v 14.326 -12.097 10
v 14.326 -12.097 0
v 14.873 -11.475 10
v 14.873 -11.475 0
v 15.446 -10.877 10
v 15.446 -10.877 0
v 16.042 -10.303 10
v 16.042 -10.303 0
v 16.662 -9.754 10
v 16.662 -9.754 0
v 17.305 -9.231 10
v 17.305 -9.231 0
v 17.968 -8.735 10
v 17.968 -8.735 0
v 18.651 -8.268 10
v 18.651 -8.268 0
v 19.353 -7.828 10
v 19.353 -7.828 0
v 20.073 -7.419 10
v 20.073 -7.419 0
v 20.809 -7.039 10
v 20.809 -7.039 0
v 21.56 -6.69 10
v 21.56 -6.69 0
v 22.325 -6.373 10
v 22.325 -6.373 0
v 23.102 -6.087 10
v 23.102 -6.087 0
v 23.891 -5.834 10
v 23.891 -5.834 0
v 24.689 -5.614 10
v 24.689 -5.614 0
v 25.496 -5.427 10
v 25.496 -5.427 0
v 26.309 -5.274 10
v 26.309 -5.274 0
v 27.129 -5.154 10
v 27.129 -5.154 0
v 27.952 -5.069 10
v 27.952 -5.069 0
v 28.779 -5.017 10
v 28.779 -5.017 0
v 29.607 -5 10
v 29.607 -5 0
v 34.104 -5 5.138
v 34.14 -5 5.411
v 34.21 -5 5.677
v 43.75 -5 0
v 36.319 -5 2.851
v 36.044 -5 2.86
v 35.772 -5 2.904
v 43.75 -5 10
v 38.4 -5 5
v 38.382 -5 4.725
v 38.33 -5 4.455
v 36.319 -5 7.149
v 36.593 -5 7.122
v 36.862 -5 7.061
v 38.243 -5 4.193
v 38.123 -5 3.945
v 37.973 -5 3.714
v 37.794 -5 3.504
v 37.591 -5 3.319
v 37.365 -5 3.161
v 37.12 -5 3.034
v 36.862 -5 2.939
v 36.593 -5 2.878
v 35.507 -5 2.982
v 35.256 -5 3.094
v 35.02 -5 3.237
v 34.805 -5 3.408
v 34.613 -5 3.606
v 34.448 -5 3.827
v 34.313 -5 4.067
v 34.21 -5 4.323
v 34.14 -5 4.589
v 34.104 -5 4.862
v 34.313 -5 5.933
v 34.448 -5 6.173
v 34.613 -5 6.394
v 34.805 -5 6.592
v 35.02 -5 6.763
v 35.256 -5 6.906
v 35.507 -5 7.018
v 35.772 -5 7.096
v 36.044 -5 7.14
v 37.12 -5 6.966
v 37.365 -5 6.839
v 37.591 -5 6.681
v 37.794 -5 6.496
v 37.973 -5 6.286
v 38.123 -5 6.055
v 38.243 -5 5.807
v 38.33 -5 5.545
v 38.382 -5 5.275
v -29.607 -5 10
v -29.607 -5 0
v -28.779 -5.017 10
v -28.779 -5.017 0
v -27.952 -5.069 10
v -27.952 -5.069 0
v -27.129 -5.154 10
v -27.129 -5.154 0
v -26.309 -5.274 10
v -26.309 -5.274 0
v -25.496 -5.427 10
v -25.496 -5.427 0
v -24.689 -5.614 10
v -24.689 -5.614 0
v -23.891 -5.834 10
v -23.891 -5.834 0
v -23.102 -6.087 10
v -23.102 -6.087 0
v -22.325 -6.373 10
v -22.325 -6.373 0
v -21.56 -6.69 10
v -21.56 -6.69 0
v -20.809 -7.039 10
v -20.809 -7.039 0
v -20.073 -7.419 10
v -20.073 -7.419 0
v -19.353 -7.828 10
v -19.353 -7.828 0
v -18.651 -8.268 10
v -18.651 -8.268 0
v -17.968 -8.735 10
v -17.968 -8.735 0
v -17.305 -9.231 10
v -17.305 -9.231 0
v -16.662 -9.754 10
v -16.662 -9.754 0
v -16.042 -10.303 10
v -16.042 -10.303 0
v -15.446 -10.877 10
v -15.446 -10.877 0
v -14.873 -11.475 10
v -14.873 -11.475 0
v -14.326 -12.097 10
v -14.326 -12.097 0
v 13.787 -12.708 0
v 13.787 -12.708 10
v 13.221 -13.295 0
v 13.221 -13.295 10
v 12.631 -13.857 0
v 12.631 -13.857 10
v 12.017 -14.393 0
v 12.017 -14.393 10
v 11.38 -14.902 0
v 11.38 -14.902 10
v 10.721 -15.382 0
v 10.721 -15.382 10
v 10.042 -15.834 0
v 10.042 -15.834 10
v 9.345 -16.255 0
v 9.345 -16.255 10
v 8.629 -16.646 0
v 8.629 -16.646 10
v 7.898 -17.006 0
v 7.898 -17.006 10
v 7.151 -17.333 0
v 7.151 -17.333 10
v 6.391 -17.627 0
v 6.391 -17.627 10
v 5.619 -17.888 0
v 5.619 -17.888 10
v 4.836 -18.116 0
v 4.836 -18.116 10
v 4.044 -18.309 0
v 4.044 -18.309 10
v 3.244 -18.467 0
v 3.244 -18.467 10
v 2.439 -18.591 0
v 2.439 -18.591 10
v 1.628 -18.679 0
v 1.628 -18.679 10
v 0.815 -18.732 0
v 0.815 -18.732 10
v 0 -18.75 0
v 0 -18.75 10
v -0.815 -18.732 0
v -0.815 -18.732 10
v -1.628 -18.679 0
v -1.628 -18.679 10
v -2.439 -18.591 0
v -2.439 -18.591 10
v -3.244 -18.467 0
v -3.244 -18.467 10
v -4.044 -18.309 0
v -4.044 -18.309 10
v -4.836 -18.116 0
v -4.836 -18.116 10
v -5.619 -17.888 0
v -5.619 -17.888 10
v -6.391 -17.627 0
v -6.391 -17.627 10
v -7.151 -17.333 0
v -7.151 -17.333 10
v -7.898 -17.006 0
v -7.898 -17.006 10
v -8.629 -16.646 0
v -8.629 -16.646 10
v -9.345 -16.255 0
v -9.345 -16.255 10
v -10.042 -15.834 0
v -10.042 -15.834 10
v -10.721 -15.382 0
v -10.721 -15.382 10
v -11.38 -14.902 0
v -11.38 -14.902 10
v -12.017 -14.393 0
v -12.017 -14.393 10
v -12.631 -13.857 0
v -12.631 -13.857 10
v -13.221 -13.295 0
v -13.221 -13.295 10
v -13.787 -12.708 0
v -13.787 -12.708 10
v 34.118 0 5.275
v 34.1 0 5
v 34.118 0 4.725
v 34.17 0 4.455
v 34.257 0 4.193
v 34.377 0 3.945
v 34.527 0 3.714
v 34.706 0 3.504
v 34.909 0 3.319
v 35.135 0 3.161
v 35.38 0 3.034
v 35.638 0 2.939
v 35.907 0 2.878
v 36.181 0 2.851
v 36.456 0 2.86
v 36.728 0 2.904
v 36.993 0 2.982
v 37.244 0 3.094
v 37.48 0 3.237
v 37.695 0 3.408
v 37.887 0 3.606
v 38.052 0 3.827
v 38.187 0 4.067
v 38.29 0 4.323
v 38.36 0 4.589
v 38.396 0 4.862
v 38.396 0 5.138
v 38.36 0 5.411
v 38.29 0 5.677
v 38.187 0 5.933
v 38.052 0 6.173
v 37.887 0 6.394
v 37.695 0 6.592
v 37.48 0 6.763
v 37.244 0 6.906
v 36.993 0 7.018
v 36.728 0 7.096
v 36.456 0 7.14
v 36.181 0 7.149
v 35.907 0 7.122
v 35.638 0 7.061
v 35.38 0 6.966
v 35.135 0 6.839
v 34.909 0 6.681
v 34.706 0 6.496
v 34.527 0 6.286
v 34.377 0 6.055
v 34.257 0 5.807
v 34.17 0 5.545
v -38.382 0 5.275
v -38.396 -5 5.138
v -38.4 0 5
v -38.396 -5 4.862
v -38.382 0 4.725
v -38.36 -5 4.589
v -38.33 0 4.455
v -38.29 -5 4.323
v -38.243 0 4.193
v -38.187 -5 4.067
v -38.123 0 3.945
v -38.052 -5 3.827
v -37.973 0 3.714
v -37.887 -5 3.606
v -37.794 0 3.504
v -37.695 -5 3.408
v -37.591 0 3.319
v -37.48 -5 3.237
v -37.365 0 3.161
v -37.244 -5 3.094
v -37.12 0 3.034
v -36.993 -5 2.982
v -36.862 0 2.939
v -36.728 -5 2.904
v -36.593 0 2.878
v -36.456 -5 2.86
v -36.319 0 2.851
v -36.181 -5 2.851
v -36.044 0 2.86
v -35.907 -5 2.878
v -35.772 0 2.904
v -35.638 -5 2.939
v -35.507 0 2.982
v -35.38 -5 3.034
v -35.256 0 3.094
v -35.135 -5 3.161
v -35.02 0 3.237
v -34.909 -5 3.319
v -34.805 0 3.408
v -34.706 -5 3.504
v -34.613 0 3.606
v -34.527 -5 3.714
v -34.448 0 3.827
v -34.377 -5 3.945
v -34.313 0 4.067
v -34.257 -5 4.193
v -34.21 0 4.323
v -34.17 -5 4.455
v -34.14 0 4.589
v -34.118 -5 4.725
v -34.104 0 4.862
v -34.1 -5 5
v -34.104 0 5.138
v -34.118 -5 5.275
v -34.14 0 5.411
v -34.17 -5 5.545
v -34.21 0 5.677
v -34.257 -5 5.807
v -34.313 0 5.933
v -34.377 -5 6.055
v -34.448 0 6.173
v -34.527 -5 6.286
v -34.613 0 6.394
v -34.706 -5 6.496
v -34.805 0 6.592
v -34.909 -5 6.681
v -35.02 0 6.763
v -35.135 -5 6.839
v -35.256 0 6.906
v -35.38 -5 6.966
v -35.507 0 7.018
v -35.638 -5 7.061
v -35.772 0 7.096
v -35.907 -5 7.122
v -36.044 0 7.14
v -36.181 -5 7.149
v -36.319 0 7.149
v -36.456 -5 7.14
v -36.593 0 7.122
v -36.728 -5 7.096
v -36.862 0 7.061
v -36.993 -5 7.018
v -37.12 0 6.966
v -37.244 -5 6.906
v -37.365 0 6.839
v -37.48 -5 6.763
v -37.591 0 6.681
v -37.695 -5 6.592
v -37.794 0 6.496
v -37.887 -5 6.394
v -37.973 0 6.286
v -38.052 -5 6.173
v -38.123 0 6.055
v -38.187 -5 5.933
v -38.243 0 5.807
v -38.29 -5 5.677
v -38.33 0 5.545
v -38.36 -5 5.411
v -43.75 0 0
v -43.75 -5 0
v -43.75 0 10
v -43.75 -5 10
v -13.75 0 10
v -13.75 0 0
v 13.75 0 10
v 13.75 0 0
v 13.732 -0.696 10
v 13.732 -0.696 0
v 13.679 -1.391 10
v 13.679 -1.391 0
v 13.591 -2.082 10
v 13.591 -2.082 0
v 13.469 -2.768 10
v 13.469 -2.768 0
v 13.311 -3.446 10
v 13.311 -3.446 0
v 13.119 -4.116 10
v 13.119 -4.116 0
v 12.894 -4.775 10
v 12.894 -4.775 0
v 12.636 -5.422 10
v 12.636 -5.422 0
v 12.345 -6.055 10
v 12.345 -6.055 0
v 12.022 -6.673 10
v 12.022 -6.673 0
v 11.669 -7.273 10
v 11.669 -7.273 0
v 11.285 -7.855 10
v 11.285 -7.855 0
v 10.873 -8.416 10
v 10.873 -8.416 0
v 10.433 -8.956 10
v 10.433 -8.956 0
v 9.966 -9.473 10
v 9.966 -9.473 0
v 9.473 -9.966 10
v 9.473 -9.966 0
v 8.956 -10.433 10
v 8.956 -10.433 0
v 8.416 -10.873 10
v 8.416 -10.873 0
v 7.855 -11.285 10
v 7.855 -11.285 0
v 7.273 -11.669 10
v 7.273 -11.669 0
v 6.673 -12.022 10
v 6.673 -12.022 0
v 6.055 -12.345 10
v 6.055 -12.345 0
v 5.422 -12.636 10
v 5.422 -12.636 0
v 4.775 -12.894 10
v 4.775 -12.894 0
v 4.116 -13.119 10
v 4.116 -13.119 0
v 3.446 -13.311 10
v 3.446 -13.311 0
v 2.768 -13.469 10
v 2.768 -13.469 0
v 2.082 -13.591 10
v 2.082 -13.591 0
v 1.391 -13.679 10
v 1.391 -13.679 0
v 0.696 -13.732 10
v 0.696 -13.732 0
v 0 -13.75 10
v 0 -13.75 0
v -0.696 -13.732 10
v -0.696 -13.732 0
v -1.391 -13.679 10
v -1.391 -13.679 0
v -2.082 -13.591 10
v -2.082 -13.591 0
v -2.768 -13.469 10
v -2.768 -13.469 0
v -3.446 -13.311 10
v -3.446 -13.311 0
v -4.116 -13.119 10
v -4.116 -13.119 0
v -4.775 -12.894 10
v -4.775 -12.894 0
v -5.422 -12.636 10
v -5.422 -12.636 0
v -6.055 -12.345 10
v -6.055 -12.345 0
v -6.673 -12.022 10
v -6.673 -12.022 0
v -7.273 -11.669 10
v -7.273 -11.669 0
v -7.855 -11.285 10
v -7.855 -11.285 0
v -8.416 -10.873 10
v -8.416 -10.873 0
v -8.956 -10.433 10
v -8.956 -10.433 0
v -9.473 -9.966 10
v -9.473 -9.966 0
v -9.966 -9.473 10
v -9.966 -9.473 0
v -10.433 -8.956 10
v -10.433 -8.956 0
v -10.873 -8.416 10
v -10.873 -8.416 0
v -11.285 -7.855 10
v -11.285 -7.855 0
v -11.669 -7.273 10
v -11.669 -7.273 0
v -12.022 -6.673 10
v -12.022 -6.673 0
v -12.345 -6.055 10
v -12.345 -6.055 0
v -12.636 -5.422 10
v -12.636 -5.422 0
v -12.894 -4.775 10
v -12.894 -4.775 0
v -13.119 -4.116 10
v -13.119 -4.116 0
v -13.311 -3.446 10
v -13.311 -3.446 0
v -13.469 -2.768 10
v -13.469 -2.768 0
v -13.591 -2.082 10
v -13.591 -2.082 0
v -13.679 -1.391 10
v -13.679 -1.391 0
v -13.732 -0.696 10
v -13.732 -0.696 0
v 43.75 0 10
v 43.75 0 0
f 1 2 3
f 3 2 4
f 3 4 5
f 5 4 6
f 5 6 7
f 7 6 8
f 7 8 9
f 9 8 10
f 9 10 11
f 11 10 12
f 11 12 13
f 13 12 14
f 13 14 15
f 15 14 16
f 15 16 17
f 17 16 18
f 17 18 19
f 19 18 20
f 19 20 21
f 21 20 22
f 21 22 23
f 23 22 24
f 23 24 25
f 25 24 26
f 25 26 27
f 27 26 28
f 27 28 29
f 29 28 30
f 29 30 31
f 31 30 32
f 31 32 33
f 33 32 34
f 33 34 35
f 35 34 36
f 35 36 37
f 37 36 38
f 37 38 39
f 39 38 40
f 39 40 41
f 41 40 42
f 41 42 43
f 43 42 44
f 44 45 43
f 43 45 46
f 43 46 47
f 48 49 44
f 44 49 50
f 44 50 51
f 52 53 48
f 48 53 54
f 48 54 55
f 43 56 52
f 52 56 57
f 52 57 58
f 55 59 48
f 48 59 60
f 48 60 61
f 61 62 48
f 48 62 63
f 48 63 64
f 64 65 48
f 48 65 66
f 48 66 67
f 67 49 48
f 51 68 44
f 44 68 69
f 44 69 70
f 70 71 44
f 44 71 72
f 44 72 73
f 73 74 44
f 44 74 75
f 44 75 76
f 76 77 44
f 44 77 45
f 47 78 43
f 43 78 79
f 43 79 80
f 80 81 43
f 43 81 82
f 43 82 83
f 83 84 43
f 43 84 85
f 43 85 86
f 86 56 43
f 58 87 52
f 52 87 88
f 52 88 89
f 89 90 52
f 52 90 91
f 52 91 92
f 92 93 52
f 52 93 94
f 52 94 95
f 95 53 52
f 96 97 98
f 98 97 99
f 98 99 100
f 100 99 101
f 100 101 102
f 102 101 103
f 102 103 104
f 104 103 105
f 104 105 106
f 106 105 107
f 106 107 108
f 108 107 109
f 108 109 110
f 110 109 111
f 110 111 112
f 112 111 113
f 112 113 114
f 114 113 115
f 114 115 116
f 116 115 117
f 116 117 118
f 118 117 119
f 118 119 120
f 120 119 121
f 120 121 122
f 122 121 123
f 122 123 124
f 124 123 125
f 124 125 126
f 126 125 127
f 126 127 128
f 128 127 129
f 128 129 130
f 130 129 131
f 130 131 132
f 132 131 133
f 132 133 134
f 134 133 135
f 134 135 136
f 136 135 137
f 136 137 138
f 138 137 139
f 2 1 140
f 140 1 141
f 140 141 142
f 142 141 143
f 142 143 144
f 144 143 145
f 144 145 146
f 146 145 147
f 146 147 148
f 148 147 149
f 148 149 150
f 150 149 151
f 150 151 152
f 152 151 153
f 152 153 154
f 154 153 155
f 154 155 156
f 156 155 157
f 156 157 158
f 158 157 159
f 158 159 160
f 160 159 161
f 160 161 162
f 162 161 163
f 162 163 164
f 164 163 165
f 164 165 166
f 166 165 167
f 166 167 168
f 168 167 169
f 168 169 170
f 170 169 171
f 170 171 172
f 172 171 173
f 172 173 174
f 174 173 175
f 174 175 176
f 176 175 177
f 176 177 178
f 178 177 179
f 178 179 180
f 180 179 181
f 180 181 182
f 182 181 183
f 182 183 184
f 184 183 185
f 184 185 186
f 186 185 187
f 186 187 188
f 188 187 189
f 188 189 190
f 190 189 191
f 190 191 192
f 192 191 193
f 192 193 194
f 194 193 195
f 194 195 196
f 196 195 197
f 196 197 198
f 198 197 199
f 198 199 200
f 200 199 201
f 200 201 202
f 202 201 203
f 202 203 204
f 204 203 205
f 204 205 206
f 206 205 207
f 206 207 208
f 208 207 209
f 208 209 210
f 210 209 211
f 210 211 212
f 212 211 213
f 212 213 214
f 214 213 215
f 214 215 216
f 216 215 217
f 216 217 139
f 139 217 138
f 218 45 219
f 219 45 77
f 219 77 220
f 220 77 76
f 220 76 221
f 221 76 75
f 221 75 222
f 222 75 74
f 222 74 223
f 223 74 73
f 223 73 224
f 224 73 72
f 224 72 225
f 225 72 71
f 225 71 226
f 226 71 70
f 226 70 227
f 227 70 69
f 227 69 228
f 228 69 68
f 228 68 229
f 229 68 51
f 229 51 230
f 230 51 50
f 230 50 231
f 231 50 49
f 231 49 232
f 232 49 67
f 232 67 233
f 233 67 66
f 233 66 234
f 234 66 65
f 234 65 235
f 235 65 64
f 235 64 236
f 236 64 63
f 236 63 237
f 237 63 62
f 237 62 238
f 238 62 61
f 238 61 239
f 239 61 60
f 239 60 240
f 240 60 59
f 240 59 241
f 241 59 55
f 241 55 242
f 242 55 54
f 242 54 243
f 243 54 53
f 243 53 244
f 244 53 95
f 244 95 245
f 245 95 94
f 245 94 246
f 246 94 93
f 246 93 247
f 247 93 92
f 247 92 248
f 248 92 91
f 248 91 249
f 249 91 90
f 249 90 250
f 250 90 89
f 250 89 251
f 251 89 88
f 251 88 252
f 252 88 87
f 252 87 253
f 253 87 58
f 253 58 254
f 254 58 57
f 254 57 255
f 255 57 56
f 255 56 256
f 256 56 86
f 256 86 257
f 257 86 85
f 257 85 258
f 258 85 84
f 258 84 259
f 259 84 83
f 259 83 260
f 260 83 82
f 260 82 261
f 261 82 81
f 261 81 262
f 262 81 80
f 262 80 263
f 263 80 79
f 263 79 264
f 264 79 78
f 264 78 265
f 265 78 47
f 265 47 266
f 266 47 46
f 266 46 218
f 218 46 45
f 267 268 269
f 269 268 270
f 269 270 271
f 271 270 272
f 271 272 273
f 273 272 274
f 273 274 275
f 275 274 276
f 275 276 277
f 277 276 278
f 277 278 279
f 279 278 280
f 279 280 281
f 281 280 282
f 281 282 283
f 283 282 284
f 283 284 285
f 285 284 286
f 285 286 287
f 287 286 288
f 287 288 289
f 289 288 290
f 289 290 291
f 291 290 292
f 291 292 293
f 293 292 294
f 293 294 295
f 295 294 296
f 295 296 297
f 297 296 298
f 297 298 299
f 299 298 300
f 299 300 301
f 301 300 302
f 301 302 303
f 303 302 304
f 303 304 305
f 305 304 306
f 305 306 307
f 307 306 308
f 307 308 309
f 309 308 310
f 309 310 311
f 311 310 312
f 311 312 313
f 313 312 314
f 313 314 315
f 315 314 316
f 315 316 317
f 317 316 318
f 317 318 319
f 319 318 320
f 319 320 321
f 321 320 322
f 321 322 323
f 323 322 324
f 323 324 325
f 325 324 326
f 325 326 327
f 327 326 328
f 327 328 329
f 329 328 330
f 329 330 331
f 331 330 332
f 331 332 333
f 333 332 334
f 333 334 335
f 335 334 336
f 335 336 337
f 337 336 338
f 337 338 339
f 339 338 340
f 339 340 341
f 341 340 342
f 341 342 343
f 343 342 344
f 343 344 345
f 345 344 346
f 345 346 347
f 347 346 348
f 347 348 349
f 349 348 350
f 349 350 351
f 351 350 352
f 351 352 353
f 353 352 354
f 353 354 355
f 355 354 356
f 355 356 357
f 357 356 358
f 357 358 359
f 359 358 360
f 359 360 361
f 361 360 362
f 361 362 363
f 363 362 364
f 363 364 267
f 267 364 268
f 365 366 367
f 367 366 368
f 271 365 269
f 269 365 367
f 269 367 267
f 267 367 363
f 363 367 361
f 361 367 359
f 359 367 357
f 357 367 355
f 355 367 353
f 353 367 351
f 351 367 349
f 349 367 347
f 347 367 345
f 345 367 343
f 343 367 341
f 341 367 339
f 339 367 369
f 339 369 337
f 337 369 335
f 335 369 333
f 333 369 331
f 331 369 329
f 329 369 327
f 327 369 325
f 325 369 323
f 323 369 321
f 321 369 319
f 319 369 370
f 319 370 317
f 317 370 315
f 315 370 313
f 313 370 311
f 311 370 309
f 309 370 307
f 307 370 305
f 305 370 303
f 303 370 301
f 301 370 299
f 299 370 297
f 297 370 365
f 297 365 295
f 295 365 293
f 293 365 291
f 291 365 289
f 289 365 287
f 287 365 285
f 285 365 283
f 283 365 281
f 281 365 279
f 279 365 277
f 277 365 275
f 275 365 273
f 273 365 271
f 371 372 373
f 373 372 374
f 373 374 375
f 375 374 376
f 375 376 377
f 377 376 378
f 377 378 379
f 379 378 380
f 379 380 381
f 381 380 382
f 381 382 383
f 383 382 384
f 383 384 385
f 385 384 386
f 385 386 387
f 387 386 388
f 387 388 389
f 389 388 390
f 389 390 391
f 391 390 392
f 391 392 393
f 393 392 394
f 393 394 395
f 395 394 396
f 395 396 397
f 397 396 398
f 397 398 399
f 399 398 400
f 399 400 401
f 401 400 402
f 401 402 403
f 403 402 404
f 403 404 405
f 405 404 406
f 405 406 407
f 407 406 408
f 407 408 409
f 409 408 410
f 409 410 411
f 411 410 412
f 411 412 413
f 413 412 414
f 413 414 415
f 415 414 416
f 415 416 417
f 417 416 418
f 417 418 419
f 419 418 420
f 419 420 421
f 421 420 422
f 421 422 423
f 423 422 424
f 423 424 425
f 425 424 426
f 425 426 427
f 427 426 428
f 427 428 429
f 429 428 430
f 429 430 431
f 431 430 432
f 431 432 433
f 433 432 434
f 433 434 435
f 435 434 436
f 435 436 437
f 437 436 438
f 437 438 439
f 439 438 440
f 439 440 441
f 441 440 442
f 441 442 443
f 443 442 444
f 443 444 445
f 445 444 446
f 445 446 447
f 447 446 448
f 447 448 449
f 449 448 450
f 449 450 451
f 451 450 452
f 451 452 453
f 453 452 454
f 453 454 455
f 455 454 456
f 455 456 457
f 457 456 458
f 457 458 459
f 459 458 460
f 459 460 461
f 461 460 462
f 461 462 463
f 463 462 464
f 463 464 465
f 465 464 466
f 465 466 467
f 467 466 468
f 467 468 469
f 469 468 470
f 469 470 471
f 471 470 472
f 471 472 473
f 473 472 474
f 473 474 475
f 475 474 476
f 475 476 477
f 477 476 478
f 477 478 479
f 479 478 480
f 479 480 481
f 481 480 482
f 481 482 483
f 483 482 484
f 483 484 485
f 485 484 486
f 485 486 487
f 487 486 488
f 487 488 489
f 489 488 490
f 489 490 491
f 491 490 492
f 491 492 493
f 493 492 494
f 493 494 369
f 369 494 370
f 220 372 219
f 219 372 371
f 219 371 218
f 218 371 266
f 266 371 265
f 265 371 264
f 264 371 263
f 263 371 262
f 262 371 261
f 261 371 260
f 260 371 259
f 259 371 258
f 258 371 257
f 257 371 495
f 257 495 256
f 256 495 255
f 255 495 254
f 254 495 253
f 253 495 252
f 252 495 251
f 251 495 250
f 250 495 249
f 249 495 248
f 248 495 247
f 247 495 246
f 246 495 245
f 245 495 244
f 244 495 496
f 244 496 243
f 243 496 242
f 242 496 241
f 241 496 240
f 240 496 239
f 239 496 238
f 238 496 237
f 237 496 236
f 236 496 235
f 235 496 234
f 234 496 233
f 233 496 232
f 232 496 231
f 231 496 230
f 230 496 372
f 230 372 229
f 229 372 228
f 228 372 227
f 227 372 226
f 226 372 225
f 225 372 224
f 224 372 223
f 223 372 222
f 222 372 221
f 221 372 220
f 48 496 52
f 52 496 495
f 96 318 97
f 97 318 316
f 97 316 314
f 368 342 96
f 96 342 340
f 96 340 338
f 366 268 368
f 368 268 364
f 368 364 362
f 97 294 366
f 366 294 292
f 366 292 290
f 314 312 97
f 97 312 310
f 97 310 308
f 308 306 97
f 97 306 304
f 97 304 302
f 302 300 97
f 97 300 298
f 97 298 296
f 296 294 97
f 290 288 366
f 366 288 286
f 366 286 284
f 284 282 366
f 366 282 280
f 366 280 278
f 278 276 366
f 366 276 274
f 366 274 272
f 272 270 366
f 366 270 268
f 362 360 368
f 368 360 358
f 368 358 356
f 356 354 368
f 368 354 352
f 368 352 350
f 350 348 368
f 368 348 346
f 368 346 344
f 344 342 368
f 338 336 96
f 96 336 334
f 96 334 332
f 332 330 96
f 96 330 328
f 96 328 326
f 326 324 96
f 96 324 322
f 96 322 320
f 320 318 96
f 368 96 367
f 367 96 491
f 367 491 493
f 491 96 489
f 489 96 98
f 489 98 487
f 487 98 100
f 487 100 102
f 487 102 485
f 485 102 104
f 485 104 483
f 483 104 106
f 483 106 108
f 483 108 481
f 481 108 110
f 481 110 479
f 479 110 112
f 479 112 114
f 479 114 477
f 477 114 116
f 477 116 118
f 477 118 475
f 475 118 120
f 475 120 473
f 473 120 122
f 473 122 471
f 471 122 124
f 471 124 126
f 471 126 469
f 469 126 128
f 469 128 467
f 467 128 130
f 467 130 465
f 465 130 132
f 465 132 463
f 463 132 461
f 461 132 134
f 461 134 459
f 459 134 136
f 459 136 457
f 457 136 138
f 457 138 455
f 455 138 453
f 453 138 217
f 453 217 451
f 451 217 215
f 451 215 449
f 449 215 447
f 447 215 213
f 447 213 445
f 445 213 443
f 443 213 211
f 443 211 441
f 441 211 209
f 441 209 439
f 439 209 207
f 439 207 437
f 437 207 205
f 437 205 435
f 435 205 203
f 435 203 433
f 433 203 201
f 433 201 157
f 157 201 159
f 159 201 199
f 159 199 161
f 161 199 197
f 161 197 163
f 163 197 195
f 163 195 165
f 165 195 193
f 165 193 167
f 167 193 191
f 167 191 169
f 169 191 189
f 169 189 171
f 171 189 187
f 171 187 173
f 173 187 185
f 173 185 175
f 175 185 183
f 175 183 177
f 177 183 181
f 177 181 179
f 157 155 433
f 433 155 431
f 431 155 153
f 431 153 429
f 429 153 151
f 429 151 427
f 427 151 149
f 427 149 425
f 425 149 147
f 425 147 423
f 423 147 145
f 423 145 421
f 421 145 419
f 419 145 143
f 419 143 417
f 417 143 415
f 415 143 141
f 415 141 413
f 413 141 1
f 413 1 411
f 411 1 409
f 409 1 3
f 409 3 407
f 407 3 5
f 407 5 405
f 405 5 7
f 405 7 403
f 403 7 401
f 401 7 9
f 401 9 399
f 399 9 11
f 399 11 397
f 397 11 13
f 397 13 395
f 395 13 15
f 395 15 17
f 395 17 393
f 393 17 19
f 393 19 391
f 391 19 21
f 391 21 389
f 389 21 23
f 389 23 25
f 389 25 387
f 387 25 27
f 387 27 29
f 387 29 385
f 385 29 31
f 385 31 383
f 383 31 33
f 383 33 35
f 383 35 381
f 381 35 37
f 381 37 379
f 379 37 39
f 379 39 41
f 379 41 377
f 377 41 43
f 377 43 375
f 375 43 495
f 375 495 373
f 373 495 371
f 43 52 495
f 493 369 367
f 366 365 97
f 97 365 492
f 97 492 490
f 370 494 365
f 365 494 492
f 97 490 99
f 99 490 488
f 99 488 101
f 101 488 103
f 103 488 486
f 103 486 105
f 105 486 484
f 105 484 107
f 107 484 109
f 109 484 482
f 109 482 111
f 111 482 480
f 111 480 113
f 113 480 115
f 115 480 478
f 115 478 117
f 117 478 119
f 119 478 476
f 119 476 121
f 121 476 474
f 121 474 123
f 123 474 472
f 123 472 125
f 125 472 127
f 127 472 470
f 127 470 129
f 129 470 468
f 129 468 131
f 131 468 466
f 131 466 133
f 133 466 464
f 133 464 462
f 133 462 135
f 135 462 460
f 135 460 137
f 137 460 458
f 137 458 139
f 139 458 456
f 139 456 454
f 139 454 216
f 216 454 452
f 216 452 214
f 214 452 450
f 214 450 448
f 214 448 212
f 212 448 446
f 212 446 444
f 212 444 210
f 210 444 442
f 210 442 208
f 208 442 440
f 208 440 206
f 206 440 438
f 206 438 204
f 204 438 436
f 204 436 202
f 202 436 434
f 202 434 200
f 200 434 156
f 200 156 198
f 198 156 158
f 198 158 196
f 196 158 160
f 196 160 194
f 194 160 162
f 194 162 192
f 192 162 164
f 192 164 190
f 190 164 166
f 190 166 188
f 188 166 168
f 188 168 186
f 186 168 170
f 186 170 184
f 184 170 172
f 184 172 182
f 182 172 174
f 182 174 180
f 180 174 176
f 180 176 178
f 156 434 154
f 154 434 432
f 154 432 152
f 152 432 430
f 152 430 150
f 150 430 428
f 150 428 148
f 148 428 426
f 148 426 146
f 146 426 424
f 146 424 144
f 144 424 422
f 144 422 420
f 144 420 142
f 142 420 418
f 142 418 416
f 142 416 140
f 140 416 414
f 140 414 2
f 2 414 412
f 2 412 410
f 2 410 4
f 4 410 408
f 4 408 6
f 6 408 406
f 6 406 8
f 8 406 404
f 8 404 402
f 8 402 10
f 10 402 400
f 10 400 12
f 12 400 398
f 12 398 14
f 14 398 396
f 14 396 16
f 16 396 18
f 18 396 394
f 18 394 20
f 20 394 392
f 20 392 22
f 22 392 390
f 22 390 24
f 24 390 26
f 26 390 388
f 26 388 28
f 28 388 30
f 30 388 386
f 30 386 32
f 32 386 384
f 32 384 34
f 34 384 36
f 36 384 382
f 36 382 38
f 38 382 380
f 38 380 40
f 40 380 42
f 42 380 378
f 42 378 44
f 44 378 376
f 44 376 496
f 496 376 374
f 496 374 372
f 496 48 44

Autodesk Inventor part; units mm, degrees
ref_plane "YZ Plane" through (0, 0, 0) normal (1, 0, 0) x (0, 1, 0)
ref_plane "XZ Plane" through (0, 0, 0) normal (0, 1, 0) x (-1, 0, 0)
ref_plane "XY Plane" through (0, 0, 0) normal (0, 0, 1) x (1, 0, 0)
sketch "Sketch1" plane through (0, 0, 0) normal (0, 0, 1) x (1, 0, 0)
  circle A0 centre (0, 0) radius 13.75
  circle A1 centre (0, 0) radius 18.75
  line L0 (-18.75, 0) -> (-43.75, 0)
  line L1 (-43.75, 0) -> (-43.75, -5)
  line L2 (-43.75, -5) -> (-18.75, -5)
  line L3 (-18.75, -5) -> (-18.75, 0)
  line L4 (-18.75, -5) -> (-13.75, -5)
  line L5 (-13.75, -5) -> (-13.75, 0)
  line L6 (-13.75, 0) -> (-18.75, 0)
  line L7 (-18.75, 0) -> (-18.75, -5)
  line L8 (18.75, 0) -> (43.75, 0)
  line L9 (43.75, 0) -> (43.75, -5)
  line L10 (43.75, -5) -> (18.75, -5)
  line L11 (18.75, -5) -> (18.75, 0)
  line L12 (18.75, -5) -> (13.75, -5)
  line L13 (13.75, -5) -> (13.75, 0)
  line L14 (13.75, 0) -> (18.75, 0)
  line L15 (18.75, 0) -> (18.75, -5)
  point P0 (-18.071, -5)
  point P1 (18.071, -5)
  dimension "d0" = 27.5
  dimension "d1" = 5
  dimension "d2" = 5
  dimension "d3" = 25
  dimension "d4" = 25
  dimension "d5" = 5
extrude "Extrusion1" add sketch "Sketch1" along normal blind 10 contours L13 L12 A1 L4 L5 A0 | L14 A1 L12 L13 | L5 L4 A1 L6 | L11 L12 A1 | L8 L9 L10 L11 | L3 L2 L1 L0 | A1 L4 L3
sketch "Sketch2" plane through (-43.75, -5, 0) normal (0, -1, 0) x (1, 0, 0)
  line L0 (0, 0) -> (25.679, 0) projected
  line L1 (25.679, 0) -> (25.679, 10) projected
  line L2 (0, 10) -> (25.679, 10) projected
  line L3 (0, 0) -> (0, 10) projected
  line L4 (61.821, 0) -> (87.5, 0) projected
  line L5 (87.5, 0) -> (87.5, 10) projected
  line L6 (61.821, 10) -> (87.5, 10) projected
  line L7 (61.821, 0) -> (61.821, 10) projected
  circle A0 centre (7.5, 5) radius 2.15
  circle A1 centre (80, 5) radius 2.15
  line L8 (0, 0) -> (0, 10) projected
  line L9 (87.5, 0) -> (87.5, 10) projected
  point P0 (43.75, 0)
  point P1 (12.8395, 10)
  point P2 (0, 5)
  point P3 (74.6605, 10)
  point P4 (87.5, 5)
  point P5 (0, 5)
  point P6 (0, 5)
  point P7 (87.5, 5)
  point P8 (87.5, 5)
  dimension "d8" = 4.3
  dimension "d9" = 4.3
  dimension "d13" = 7.5
  dimension "d14" = 7.5
extrude "Extrusion2" cut sketch "Sketch2" against normal up to surface (5 mm away) contours A0 | A1
fillet "Fillet1" radius 20 2 edges at (-18.071, -5, 5) (18.071, -5, 5)
equation "\"d4\" = d3"
